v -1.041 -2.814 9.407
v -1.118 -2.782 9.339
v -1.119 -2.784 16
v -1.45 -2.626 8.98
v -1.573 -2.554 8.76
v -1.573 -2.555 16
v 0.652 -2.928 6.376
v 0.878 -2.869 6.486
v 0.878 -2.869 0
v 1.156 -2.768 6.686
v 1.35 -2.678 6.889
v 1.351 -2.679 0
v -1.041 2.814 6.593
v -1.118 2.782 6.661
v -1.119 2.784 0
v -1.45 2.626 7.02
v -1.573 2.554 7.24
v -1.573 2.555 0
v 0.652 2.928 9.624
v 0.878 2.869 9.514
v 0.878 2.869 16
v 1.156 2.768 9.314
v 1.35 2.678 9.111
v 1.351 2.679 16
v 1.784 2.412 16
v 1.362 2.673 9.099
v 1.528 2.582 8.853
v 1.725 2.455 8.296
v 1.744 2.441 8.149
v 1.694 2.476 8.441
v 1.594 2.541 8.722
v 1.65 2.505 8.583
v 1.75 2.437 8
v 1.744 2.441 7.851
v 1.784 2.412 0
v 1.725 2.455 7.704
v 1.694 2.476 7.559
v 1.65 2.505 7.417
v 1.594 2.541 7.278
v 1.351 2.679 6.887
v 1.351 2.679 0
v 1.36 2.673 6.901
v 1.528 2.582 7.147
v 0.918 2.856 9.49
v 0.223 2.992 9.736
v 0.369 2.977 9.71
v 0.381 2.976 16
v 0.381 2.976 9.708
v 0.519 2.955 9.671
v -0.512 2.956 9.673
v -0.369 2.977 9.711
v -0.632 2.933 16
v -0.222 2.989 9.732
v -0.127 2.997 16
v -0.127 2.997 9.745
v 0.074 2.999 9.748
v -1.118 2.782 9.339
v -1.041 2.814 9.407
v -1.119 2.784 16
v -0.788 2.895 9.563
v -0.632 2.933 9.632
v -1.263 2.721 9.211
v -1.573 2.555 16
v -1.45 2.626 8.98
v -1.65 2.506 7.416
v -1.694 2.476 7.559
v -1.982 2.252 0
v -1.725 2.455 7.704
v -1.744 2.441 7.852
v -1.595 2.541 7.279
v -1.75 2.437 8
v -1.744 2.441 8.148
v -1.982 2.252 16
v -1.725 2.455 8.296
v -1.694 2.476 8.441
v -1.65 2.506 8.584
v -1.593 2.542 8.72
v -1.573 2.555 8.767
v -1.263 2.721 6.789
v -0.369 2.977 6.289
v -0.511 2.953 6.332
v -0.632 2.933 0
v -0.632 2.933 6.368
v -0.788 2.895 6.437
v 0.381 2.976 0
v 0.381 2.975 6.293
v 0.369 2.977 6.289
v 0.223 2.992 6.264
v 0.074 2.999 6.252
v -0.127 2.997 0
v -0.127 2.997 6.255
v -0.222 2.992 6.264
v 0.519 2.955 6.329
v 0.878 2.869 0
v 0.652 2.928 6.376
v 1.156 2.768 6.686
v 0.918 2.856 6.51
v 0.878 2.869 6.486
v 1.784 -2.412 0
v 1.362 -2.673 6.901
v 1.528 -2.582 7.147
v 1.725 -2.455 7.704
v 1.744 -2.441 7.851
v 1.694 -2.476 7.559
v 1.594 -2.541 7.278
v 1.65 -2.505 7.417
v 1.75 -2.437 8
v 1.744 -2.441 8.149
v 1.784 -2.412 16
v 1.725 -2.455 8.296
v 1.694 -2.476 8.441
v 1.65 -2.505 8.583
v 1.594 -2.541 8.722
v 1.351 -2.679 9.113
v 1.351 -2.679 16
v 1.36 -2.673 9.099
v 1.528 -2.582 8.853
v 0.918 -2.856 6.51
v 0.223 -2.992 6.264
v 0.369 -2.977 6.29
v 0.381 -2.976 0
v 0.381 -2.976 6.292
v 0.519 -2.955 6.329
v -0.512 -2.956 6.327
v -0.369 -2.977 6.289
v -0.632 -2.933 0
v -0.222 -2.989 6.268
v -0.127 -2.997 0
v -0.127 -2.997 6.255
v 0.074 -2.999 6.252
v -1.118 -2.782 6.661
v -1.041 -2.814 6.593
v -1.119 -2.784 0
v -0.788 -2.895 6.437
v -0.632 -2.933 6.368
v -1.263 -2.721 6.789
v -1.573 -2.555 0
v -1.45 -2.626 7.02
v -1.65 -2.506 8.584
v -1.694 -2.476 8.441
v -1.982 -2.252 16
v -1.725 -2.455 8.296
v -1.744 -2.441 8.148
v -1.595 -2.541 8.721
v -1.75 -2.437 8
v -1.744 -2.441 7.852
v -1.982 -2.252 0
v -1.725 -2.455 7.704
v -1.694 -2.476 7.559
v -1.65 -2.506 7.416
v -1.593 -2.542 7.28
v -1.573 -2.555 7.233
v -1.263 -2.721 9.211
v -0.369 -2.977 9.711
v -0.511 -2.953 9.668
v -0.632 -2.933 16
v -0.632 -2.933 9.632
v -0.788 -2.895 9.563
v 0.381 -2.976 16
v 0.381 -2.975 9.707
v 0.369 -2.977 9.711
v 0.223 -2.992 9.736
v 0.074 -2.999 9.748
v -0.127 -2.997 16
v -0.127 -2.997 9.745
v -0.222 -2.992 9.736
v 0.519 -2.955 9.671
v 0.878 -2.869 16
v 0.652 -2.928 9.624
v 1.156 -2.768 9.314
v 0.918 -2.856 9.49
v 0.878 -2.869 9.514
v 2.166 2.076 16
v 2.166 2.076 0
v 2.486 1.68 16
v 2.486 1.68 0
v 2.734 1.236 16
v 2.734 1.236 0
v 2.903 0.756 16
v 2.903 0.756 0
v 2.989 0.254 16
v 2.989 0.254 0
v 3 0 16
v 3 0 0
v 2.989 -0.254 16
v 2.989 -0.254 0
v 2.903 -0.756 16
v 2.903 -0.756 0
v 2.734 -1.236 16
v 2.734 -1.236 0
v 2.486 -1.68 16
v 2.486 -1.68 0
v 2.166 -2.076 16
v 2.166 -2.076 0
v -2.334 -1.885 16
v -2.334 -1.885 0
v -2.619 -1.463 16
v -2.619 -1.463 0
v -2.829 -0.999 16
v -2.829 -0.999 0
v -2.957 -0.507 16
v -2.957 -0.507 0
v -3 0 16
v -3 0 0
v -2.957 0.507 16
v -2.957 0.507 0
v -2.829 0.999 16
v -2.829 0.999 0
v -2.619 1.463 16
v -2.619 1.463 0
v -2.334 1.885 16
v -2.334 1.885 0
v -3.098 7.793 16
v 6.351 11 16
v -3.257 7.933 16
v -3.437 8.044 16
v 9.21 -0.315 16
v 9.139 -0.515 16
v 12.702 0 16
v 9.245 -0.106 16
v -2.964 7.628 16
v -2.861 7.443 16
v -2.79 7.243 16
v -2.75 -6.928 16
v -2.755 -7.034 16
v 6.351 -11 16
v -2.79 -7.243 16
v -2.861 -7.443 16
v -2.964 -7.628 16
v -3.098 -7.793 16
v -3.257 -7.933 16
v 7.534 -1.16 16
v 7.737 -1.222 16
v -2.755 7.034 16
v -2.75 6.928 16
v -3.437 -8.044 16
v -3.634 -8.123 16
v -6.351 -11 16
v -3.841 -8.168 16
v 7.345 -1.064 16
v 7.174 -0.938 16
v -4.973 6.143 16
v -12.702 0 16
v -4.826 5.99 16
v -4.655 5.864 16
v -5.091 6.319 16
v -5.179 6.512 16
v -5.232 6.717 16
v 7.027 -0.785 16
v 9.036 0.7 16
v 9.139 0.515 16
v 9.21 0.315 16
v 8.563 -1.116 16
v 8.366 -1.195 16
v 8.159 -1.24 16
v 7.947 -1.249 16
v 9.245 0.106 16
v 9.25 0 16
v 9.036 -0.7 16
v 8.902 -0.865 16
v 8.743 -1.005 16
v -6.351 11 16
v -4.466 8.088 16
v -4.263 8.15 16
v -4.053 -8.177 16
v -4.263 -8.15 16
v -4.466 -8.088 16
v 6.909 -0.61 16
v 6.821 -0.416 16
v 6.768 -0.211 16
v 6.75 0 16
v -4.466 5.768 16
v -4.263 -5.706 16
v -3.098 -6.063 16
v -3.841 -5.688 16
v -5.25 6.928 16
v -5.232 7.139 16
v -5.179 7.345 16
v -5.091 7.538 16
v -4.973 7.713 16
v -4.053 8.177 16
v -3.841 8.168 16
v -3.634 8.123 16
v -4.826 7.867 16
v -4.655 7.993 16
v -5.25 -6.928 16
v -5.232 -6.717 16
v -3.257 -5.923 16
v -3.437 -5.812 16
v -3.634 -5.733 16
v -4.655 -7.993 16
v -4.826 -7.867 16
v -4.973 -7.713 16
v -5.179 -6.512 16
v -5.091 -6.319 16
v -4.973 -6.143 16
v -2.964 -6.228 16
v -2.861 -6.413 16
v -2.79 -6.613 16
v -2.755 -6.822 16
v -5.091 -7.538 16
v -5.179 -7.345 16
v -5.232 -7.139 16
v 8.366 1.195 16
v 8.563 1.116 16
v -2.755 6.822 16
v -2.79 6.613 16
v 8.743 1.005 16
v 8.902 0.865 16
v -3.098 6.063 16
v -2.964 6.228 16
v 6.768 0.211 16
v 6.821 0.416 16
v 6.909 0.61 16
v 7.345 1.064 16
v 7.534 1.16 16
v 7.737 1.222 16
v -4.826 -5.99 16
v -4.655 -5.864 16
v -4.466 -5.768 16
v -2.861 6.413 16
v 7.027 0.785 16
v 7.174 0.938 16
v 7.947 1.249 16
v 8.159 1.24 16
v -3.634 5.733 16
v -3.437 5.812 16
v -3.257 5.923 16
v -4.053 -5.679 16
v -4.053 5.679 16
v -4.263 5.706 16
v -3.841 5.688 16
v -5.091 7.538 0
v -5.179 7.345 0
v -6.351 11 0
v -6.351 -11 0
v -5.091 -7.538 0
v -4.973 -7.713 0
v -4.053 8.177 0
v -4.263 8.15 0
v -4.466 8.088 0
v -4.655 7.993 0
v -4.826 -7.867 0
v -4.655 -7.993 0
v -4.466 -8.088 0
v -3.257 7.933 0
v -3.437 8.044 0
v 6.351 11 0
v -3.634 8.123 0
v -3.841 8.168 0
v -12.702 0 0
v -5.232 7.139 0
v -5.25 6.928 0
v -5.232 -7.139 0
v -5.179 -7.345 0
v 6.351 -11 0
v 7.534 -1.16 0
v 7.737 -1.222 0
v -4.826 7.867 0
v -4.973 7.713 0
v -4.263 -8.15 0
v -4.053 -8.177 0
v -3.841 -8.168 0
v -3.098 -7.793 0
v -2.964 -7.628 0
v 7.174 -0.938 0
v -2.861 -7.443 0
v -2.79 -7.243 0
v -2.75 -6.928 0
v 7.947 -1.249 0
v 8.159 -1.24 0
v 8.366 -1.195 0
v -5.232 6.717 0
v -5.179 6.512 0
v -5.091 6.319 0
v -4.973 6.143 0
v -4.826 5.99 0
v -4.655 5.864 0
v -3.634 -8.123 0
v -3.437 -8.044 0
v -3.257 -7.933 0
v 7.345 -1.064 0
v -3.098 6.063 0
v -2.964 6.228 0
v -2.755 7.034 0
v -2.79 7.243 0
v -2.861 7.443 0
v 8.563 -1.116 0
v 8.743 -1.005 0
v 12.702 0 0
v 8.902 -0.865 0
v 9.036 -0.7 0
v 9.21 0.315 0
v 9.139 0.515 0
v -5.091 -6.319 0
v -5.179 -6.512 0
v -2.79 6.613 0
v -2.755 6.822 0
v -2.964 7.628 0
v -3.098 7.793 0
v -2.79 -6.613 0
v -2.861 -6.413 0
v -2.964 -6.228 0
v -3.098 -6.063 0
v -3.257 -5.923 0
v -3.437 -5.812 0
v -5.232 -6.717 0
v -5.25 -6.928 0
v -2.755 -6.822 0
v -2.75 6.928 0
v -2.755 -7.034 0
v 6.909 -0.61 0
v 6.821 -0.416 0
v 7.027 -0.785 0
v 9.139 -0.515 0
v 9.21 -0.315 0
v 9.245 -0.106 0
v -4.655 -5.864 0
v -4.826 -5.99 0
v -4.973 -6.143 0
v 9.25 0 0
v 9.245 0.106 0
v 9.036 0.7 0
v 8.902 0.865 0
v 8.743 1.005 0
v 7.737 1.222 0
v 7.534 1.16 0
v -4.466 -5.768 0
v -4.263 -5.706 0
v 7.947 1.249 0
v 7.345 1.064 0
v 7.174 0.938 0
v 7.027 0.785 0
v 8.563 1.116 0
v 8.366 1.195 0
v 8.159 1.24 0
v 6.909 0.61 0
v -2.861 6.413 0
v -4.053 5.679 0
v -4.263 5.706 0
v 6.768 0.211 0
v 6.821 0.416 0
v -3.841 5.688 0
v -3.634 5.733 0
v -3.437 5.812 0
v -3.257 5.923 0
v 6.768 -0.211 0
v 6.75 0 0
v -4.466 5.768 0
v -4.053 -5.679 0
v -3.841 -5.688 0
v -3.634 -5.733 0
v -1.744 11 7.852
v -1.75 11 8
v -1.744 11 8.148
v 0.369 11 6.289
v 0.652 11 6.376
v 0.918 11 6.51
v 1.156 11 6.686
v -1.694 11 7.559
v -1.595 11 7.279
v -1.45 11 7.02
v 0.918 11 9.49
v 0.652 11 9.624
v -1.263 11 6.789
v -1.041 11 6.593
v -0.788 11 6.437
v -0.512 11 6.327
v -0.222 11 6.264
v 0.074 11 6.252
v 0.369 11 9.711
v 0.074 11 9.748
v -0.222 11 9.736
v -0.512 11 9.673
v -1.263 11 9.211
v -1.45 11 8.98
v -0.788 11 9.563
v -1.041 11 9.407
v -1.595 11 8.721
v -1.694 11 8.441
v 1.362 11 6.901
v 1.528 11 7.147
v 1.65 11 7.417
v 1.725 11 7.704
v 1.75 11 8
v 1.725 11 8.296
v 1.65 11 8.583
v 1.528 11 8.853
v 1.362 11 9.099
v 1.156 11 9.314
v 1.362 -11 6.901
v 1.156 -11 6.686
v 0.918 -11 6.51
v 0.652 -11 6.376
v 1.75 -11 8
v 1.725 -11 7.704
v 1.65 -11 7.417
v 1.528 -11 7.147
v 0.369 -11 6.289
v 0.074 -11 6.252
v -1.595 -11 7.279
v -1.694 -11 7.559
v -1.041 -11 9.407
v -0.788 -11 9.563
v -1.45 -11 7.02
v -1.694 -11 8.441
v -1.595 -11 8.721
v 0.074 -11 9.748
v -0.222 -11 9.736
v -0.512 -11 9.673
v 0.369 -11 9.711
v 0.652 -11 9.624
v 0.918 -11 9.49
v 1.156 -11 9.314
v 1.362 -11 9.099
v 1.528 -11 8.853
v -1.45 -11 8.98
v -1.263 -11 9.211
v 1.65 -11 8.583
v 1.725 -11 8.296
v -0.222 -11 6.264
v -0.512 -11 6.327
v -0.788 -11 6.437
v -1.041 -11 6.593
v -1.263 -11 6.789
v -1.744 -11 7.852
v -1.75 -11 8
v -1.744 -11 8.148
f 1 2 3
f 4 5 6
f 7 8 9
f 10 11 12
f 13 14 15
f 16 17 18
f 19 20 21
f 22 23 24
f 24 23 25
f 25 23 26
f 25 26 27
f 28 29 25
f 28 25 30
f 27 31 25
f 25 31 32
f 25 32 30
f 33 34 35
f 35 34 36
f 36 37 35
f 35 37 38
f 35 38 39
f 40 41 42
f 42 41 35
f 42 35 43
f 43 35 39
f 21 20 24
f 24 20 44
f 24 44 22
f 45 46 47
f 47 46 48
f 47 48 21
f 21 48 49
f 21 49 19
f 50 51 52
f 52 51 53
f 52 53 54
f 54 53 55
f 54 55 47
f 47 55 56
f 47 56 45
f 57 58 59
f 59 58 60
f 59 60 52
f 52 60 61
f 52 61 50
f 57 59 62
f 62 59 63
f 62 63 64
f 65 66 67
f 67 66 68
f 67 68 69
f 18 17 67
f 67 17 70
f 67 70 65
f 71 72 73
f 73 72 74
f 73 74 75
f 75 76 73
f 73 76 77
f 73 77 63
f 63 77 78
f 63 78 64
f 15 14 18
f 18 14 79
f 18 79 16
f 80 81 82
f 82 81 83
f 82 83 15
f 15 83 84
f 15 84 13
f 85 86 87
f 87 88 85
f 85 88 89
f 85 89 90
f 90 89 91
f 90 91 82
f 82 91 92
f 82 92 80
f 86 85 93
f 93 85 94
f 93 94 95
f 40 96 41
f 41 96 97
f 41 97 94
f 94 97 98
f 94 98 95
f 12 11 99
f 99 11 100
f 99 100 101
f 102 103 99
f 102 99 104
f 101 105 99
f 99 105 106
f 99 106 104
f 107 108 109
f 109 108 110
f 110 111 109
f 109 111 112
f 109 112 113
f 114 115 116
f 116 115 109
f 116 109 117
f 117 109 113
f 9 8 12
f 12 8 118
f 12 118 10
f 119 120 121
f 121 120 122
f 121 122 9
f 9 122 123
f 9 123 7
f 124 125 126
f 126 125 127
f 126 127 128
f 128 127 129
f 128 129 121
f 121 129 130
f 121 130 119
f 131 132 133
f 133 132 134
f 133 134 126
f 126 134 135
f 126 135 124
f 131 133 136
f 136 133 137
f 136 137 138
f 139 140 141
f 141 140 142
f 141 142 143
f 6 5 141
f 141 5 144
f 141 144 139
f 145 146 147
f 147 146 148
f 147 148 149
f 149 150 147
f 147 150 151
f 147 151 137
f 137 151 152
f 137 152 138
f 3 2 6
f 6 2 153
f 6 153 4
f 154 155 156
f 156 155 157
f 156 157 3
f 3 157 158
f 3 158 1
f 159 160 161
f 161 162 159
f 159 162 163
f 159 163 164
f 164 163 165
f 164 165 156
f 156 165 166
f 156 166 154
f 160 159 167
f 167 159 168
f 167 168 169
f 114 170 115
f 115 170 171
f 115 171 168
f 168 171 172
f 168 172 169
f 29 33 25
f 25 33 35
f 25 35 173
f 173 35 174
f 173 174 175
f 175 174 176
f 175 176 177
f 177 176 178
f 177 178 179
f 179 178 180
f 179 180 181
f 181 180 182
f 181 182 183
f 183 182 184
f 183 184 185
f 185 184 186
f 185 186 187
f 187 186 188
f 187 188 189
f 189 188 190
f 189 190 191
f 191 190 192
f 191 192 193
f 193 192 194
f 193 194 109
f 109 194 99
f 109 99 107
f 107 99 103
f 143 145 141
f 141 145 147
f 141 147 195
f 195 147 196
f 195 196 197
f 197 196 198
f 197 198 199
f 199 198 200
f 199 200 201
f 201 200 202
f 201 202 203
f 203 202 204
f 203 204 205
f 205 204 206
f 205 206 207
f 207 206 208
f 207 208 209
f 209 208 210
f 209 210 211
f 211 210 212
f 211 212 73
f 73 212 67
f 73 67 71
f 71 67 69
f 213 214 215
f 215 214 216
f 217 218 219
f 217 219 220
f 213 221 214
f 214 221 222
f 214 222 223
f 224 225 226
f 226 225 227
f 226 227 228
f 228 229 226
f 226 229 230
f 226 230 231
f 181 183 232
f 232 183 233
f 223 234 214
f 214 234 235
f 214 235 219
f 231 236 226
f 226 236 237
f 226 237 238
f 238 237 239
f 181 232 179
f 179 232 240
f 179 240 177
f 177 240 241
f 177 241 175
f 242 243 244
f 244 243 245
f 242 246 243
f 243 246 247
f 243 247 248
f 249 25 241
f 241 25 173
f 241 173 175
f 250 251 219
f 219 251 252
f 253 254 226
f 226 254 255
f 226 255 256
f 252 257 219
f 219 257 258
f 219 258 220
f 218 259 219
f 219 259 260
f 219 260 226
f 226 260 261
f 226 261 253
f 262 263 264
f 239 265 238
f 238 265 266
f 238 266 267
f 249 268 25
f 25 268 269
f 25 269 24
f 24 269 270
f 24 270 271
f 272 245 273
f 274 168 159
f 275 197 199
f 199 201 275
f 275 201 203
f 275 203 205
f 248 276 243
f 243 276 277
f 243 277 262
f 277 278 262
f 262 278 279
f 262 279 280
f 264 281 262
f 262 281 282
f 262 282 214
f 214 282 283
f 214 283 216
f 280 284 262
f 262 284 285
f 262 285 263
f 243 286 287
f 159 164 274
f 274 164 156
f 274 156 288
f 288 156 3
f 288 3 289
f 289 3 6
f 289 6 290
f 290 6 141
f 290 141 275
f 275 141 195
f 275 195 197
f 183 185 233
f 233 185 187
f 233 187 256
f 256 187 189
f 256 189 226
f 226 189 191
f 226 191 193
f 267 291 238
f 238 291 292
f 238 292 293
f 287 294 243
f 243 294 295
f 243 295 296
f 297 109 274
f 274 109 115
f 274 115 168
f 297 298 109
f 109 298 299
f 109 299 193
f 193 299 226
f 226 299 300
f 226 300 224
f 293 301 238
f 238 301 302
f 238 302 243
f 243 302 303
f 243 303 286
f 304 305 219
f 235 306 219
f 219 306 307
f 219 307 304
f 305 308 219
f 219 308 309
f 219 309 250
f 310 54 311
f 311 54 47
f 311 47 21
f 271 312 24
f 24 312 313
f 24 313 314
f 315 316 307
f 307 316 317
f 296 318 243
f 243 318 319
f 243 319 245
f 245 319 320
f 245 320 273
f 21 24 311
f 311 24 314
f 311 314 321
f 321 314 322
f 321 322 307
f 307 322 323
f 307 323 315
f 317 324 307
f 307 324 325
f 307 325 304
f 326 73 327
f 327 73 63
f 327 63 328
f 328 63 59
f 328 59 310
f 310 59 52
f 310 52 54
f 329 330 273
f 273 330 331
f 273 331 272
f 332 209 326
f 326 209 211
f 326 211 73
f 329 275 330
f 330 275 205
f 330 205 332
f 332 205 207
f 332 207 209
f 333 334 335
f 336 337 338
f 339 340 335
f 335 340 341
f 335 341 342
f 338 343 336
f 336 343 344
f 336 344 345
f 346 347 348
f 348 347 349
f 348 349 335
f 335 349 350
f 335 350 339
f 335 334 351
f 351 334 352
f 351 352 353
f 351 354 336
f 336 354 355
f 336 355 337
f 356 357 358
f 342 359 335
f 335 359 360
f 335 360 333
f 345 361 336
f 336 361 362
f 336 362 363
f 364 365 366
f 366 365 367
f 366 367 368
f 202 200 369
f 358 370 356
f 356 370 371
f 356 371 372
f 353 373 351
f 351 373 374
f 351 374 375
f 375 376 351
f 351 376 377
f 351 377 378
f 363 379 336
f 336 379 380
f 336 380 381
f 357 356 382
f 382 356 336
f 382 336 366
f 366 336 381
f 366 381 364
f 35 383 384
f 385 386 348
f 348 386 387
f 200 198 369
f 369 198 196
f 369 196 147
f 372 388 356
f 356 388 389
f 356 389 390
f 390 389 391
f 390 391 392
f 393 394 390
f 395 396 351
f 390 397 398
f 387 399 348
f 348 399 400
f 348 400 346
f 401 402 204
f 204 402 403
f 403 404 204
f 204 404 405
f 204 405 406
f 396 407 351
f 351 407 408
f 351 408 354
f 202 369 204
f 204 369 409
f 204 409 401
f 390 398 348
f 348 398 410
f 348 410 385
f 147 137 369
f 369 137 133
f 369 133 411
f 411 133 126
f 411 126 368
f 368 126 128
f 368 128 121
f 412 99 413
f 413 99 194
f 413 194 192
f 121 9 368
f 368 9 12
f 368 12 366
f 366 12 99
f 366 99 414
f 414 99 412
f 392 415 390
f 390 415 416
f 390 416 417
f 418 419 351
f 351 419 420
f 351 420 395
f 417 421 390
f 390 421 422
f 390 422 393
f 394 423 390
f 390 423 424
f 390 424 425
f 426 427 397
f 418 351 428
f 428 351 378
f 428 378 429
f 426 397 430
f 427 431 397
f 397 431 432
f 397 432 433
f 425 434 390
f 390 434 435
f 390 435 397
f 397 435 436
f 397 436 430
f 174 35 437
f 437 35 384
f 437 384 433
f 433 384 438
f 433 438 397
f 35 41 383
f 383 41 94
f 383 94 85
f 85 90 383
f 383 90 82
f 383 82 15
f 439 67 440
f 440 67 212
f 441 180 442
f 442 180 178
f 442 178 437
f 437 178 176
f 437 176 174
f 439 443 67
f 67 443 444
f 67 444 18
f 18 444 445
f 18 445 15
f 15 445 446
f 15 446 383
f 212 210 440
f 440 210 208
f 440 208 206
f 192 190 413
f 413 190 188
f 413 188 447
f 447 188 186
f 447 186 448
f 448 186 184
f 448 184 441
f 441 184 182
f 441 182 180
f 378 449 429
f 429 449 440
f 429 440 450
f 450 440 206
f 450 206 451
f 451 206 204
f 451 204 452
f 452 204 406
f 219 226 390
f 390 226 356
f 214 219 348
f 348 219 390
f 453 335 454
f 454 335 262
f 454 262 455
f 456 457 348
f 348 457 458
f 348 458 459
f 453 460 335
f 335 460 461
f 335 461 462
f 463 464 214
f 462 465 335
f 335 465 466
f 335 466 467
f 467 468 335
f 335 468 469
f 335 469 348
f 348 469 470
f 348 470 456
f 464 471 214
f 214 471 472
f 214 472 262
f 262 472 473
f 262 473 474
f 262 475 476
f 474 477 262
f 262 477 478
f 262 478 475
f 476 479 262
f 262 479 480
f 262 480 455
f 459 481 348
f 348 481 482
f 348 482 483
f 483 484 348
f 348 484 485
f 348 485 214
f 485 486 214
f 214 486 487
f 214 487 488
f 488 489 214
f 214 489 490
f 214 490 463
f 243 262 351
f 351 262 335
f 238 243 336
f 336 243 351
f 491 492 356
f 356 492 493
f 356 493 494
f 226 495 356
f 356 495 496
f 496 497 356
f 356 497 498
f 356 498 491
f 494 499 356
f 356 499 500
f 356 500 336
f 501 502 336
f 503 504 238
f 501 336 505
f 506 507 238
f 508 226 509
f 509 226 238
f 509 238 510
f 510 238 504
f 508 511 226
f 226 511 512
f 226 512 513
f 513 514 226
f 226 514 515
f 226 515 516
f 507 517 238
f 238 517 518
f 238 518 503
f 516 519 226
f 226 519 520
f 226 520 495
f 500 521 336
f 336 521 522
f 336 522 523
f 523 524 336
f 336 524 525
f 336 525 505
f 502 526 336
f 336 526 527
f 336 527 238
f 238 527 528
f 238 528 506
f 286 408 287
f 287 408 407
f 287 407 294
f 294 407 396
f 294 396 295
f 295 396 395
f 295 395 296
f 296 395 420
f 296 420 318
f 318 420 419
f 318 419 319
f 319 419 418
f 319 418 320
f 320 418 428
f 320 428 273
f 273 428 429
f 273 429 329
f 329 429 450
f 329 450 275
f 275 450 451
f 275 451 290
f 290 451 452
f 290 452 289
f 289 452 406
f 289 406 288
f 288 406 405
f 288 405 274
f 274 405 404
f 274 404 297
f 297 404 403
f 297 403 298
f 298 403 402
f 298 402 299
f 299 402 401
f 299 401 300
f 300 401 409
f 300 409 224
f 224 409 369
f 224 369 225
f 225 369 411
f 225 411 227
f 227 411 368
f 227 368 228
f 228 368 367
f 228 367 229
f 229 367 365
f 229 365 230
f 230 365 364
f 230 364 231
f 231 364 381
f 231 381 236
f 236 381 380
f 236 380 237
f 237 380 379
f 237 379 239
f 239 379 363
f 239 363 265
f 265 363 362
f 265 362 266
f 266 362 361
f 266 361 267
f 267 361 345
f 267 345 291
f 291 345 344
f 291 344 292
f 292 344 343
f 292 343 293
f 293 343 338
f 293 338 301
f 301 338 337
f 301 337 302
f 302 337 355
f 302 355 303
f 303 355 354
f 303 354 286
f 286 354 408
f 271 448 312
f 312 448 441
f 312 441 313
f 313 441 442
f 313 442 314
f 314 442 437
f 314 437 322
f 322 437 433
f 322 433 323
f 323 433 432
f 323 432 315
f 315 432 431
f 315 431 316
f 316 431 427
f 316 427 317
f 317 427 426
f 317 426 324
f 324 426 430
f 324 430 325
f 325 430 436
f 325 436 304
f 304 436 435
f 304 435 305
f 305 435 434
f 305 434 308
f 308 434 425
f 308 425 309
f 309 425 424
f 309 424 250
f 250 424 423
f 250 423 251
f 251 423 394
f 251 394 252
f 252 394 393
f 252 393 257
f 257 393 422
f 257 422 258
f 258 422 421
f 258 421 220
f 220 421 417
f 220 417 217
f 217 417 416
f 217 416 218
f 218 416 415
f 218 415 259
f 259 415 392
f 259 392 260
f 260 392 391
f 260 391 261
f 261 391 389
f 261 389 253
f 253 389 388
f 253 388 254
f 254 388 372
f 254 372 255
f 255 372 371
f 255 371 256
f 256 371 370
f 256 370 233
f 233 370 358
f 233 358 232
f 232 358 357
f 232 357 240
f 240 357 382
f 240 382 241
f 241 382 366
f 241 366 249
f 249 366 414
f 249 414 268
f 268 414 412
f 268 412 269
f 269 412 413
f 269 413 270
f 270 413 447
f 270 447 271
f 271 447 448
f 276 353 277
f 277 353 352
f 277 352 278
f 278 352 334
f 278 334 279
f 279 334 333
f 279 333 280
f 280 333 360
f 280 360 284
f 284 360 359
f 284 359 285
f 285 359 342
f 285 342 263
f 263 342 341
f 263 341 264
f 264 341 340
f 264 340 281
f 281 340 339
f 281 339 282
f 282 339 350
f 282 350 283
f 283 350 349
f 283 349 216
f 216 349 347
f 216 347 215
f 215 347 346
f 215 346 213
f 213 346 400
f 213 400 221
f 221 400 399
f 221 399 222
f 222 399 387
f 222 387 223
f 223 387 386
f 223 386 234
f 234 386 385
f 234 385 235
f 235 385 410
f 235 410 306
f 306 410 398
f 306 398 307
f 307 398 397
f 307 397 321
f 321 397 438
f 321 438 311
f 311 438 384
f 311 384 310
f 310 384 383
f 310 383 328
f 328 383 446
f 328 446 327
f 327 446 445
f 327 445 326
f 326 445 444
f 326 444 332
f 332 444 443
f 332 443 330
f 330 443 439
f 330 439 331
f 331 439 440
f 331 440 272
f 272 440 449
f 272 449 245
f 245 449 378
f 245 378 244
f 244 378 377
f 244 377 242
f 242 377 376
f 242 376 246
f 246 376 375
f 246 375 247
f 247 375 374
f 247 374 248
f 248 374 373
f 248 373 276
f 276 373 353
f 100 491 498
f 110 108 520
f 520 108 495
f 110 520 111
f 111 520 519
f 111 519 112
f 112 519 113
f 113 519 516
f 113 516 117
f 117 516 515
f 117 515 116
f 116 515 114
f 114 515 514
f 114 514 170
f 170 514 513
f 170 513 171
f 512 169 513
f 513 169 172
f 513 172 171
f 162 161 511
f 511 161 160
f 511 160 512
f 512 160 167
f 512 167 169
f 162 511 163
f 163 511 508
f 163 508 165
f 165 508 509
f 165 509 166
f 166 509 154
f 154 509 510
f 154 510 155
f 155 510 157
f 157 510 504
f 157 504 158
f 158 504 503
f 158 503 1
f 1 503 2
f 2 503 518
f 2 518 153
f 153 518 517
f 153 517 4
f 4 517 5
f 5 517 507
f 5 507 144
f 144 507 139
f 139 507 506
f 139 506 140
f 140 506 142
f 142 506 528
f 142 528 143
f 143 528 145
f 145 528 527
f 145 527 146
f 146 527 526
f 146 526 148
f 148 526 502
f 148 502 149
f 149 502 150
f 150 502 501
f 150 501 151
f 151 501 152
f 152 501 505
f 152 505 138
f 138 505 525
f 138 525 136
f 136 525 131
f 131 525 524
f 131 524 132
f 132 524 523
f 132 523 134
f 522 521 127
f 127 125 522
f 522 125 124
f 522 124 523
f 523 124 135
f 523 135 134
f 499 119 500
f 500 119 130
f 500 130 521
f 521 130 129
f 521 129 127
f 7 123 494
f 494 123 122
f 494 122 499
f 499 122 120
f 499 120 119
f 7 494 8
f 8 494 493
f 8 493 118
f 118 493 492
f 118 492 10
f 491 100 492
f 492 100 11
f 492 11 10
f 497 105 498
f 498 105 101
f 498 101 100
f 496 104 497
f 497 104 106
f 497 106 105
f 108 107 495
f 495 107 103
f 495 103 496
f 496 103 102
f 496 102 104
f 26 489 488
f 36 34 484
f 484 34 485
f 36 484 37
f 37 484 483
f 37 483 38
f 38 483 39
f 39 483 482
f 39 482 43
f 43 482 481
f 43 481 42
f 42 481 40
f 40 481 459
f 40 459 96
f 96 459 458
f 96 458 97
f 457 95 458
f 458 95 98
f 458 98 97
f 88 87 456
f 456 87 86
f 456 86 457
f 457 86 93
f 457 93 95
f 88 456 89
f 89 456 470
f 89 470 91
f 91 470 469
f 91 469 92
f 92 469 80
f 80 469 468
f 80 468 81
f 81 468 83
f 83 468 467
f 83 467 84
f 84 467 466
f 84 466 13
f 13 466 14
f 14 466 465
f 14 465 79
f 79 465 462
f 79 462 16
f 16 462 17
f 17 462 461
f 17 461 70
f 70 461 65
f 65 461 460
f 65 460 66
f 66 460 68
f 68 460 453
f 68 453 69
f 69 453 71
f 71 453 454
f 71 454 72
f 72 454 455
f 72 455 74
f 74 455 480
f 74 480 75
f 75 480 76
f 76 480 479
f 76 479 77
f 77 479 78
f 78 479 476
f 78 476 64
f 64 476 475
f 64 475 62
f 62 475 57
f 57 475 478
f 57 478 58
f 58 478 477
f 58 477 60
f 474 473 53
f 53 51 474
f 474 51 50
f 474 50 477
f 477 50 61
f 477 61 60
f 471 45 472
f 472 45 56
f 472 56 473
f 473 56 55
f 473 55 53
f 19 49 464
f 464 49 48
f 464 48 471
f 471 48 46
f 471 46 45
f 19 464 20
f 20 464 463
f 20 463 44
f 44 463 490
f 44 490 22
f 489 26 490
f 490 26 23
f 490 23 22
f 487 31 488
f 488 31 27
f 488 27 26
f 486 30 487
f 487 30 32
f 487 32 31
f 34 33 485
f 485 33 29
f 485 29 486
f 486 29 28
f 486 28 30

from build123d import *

# Parameters (mm, degrees)
ESQUISSE1_R             = 3
ESQUISSE1_R_2           = 1.25
BOSS_EXTRU_1_DEPTH      = 16
ESQUISSE2_R             = 1.75
ENL_V_MAT_EXTRU_1_DEPTH = 45.093178542


with BuildPart() as part:
    # Esquisse1 → Boss.-Extru.1 (new body)
    with BuildSketch(Plane.XY):
        Polygon((12.701705922, 0), (6.350852961, 11), (-6.350852961, 11), (-12.701705922, 0), (-6.350852961, -11), (6.350852961, -11), align=None)
        Circle(ESQUISSE1_R, mode=Mode.SUBTRACT)
        with Locations((-4, -6.92820323)):
            Circle(ESQUISSE1_R_2, mode=Mode.SUBTRACT)
        with Locations((8, 0)):
            Circle(ESQUISSE1_R_2, mode=Mode.SUBTRACT)
        with Locations((-4, 6.92820323)):
            Circle(ESQUISSE1_R_2, mode=Mode.SUBTRACT)
    extrude(amount=BOSS_EXTRU_1_DEPTH)

    # Esquisse2 → Enlèv. mat.-Extru.1 (cut, through all)
    with BuildSketch(Plane(origin=(22, -11, 0), x_dir=(1, 0, 0), z_dir=(0, 1, 0))):
        with Locations((-22, -8)):
            Circle(ESQUISSE2_R)
    extrude(amount=ENL_V_MAT_EXTRU_1_DEPTH, mode=Mode.SUBTRACT)


solid = part.part
